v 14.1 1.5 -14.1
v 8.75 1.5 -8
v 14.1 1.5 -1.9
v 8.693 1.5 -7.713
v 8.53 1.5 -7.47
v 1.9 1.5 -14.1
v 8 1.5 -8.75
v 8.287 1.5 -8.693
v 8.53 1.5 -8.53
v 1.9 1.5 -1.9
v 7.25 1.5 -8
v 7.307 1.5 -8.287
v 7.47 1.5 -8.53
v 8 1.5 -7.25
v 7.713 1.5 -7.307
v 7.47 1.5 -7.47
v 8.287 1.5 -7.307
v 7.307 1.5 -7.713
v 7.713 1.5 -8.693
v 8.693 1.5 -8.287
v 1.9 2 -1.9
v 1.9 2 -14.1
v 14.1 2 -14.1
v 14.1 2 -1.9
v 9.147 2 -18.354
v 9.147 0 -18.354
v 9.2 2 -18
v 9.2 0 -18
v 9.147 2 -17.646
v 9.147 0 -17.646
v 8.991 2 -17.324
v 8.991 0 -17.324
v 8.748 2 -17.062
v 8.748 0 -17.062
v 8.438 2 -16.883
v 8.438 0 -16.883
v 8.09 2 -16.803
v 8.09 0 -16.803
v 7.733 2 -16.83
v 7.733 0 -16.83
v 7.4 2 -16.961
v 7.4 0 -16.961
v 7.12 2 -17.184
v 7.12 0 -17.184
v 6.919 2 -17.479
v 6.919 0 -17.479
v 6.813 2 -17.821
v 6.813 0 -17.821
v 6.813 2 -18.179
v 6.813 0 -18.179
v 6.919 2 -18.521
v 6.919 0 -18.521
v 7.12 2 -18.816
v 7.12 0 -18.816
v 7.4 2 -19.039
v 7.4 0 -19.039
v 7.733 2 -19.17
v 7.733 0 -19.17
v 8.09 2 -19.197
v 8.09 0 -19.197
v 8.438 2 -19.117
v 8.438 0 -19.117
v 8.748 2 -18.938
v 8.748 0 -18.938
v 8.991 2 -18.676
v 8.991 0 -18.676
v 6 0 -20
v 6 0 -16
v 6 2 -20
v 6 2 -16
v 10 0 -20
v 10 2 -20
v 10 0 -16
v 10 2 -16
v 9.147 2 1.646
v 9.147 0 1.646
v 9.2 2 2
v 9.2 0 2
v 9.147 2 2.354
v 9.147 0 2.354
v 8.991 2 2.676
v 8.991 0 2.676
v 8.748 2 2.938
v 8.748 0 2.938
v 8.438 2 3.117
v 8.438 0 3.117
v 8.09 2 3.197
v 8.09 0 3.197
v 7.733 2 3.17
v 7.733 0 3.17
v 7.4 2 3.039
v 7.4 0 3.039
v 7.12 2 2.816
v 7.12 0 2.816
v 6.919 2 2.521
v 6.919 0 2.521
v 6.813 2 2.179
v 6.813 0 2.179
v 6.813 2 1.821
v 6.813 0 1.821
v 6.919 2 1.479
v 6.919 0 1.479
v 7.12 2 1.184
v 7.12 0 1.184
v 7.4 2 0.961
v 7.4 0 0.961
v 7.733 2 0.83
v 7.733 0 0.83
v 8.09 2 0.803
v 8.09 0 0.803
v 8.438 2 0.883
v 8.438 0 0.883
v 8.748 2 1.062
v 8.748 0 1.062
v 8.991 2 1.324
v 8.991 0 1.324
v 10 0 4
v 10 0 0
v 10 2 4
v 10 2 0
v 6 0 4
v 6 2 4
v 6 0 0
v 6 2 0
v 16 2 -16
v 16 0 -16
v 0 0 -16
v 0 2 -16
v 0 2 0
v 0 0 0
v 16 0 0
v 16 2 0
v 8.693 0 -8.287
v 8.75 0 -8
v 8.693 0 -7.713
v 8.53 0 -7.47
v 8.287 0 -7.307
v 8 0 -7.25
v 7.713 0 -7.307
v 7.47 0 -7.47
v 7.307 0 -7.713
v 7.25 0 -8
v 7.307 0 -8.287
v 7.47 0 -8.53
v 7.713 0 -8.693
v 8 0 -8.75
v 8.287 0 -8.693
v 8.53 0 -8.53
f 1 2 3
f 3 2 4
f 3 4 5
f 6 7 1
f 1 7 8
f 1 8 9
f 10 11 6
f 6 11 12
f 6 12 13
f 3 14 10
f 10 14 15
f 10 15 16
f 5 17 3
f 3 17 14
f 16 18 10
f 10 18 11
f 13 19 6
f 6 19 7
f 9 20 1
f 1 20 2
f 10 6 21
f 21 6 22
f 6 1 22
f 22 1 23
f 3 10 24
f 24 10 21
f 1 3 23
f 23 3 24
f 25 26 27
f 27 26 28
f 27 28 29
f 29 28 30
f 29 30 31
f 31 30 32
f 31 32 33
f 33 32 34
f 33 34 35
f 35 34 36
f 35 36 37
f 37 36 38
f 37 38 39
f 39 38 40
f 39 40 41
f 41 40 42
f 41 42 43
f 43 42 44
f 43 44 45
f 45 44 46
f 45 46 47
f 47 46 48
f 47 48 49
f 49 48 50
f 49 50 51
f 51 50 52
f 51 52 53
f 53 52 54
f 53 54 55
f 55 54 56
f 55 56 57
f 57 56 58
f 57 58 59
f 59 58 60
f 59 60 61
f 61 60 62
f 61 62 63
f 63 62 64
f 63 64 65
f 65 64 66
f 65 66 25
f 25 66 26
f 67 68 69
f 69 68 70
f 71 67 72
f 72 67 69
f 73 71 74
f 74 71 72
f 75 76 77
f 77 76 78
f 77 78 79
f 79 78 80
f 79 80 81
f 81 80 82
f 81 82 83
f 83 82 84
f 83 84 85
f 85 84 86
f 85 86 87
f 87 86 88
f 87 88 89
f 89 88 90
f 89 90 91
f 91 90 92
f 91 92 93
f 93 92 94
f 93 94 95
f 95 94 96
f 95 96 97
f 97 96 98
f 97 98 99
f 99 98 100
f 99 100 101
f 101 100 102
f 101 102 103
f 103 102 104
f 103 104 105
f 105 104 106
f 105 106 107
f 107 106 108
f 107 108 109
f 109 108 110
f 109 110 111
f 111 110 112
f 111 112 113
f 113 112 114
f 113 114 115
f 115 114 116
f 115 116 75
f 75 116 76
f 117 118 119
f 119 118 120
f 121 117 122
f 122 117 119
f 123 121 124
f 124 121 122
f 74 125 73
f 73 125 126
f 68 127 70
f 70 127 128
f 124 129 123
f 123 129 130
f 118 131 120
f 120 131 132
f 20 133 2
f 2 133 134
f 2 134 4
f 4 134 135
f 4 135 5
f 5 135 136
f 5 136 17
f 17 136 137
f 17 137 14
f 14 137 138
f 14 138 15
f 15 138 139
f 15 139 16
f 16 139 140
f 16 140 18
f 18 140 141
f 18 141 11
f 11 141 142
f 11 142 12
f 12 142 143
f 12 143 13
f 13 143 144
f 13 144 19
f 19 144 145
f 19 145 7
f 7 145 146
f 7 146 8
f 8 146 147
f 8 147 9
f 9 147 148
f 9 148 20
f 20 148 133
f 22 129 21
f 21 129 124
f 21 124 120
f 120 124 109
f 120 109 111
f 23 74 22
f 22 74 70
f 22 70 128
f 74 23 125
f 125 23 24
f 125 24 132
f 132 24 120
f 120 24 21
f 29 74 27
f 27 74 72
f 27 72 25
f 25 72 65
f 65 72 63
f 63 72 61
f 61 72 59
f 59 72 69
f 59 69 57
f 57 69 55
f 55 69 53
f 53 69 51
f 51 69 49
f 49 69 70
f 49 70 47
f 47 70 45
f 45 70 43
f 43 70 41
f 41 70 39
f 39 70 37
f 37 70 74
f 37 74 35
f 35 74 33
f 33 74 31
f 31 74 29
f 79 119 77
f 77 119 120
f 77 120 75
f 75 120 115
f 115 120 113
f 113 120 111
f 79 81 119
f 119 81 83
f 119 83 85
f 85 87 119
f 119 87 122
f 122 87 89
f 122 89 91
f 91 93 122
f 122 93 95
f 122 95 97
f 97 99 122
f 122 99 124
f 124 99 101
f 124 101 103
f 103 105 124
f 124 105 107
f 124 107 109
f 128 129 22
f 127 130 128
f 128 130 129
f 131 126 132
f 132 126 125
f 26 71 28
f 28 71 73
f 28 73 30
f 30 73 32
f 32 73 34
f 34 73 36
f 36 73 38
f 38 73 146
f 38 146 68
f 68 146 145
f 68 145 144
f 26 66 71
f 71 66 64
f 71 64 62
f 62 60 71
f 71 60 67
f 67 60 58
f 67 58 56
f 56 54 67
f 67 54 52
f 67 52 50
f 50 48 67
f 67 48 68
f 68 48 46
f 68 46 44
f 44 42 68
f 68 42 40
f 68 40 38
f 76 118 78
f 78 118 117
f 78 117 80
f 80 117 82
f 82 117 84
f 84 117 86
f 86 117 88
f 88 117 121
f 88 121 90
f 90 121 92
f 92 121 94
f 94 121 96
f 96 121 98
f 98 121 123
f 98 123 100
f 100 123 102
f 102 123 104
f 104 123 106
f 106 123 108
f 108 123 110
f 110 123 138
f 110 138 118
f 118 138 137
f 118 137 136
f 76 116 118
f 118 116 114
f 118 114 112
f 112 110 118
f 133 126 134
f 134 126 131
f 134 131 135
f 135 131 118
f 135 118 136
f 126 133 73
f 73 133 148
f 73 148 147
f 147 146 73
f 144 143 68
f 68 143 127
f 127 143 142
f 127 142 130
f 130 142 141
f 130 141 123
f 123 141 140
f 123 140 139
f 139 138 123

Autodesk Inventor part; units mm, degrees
ref_plane "YZ Plane" through (0, 0, 0) normal (1, 0, 0) x (0, 1, 0)
ref_plane "XZ Plane" through (0, 0, 0) normal (0, 1, 0) x (-1, 0, 0)
ref_plane "XY Plane" through (0, 0, 0) normal (0, 0, 1) x (1, 0, 0)
sketch "Sketch1" plane through (0, 0, 0) normal (0, 1, 0) x (-1, 0, 0)
  line L0 (0, 0) -> (-16, 0)
  line L1 (-16, 0) -> (-16, -16)
  line L2 (-16, -16) -> (0, -16)
  line L3 (0, -16) -> (0, 0)
  dimension "d0" = 16
  dimension "d1" = 16
extrude "Extrusion1" add sketch "Sketch1" along normal blind 1
sketch "Sketch5" plane through (0, 1, 0) normal (0, 1, 0) x (1, 0, 0)
  line L0 (16, 0) -> (16, 16) projected
  line L1 (0, 0) -> (16, 0)
  line L2 (16, 0) -> (16, 16)
  line L3 (16, 16) -> (0, 16)
  line L4 (0, 16) -> (0, 0)
  line L5 (0, 16) -> (0, 0) projected
  line L6 (0, 0) -> (1, 0)
  line L7 (1, 0) -> (1, 1)
  line L8 (1, 1) -> (0, 1)
  line L9 (0, 1) -> (0, 0)
  line L10 (16, 16) -> (0, 16) projected
  line L11 (16, 16) -> (15, 16)
  line L12 (15, 16) -> (15, 15)
  line L13 (15, 15) -> (16, 15)
  line L14 (16, 15) -> (16, 16)
  line L15 (15, 15) -> (1, 15)
  line L16 (1, 15) -> (1, 1)
  line L17 (1, 1) -> (15, 1)
  line L18 (15, 1) -> (15, 15)
  dimension "d20" = 1
  dimension "d21" = 1
  dimension "d22" = 1
  dimension "d23" = 1
extrude "Extrusion5" add sketch "Sketch5" along normal blind 1 contours L1 L7 L17 L18 L13 L0 | L13 L12 L3 L0 | L1 L4 L8 L7 | L15 L16 L8 L4 L3 L12
sketch "Sketch6" plane through (0, 1, 0) normal (0, 1, 0) x (1, 0, 0)
  line L0 (1, 1) -> (1, 15) projected
  line L1 (15, 15) -> (15, 1) projected
  line L2 (1, 15) -> (15, 15) projected
  line L3 (15, 1) -> (1, 1) projected
  circle A0 centre (8, 8) radius 0.75
  line L4 (1, 8) -> (7.25, 8)
  line L5 (8.75, 8) -> (15, 8)
  line L6 (8, 15) -> (8, 8.75)
  line L7 (8, 7.25) -> (8, 1)
  point P0 (0, 0)
  dimension "d26" = 1.5
extrude "Extrusion6" cut sketch "Sketch6" against normal blind 1 contours A0
sketch "Sketch9" plane through (0, 0, 0) normal (0, -1, 0) x (1, 0, 0)
  circle A0 centre (8, -8) radius 0.75 projected
  line L0 (8, -8) -> (8, 0)
  line L1 (8, 0) -> (6, 0)
  line L2 (0, 0) -> (16, 0) projected
  line L3 (6, 0) -> (10, 0)
  line L4 (10, 0) -> (10, 4)
  line L5 (10, 4) -> (6, 4)
  line L6 (6, 4) -> (6, 0)
  line L7 (16, -16) -> (0, -16) projected
  line L8 (8, -16) -> (6, -16)
  line L9 (6, -16) -> (10, -16)
  line L10 (10, -16) -> (10, -20)
  line L11 (10, -20) -> (6, -20)
  line L12 (6, -20) -> (6, -16)
  circle A1 centre (8, 2) radius 1.2
  circle A2 centre (8, -18) radius 1.2
  dimension "d35" = 2
  dimension "d36" = 4
  dimension "d37" = 4
  dimension "d38" = 2
  dimension "d39" = 4
  dimension "d40" = 4
  dimension "d43" = 2.4
  dimension "d44" = 2.4
extrude "Extrusion9" add sketch "Sketch9" against normal blind 2 contours L1 L6 L5 L4 L2 | L10 L11 L12 L7
sketch "Sketch11" plane through (0, 1, 0) normal (0, 1, 0) x (1, 0, 0)
  line L0 (1, 1) -> (1, 15) projected
  line L1 (1, 1) -> (15, 1)
  line L2 (15, 1) -> (15, 15)
  line L3 (15, 15) -> (1, 15)
  line L4 (1, 15) -> (1, 1)
  line L5 (1, 1) -> (1.9, 1)
  line L6 (1.9, 1) -> (1.9, 1.9)
  line L7 (1.9, 1.9) -> (1, 1.9)
  line L8 (1, 1.9) -> (1, 1)
  line L9 (15, 1) -> (15, 15) projected
  line L10 (15, 15) -> (14.1, 15)
  line L11 (14.1, 15) -> (14.1, 14.1)
  line L12 (14.1, 14.1) -> (15, 14.1)
  line L13 (15, 14.1) -> (15, 15)
  line L14 (14.1, 14.1) -> (1.9, 14.1)
  line L15 (1.9, 14.1) -> (1.9, 1.9)
  line L16 (1.9, 1.9) -> (14.1, 1.9)
  line L17 (14.1, 1.9) -> (14.1, 14.1)
  point P0 (0, 0)
  dimension "d47" = 0.9
  dimension "d48" = 0.9
  dimension "d49" = 0.9
  dimension "d50" = 0.9
extrude "Extrusion10" add sketch "Sketch11" along normal blind 1 contours L0 L7 L6 L1 | L0 L3 L11 L14 L15 L7 | L6 L16 L17 L12 L2 L1 | L3 L2 L12 L11
sketch "Sketch12" plane through (0, 1, 0) normal (0, 1, 0) x (1, 0, 0)
  line L0 (1.9, 1.9) -> (1.9, 14.1) projected
  line L1 (14.1, 14.1) -> (14.1, 1.9) projected
  line L2 (1.9, 1.9) -> (14.1, 1.9)
  line L3 (14.1, 1.9) -> (14.1, 14.1)
  line L4 (14.1, 14.1) -> (1.9, 14.1)
  line L5 (1.9, 14.1) -> (1.9, 1.9)
  circle A0 centre (8, 8) radius 0.75 projected
  circle A1 centre (8, 8) radius 0.75
  point P0 (0, 0)
  point P1 (14.1, 1.9)
  point P2 (1.9, 14.1)
extrude "Extrusion11" add sketch "Sketch12" along normal blind 0.5
properties part number "aruco_mount_v1"
